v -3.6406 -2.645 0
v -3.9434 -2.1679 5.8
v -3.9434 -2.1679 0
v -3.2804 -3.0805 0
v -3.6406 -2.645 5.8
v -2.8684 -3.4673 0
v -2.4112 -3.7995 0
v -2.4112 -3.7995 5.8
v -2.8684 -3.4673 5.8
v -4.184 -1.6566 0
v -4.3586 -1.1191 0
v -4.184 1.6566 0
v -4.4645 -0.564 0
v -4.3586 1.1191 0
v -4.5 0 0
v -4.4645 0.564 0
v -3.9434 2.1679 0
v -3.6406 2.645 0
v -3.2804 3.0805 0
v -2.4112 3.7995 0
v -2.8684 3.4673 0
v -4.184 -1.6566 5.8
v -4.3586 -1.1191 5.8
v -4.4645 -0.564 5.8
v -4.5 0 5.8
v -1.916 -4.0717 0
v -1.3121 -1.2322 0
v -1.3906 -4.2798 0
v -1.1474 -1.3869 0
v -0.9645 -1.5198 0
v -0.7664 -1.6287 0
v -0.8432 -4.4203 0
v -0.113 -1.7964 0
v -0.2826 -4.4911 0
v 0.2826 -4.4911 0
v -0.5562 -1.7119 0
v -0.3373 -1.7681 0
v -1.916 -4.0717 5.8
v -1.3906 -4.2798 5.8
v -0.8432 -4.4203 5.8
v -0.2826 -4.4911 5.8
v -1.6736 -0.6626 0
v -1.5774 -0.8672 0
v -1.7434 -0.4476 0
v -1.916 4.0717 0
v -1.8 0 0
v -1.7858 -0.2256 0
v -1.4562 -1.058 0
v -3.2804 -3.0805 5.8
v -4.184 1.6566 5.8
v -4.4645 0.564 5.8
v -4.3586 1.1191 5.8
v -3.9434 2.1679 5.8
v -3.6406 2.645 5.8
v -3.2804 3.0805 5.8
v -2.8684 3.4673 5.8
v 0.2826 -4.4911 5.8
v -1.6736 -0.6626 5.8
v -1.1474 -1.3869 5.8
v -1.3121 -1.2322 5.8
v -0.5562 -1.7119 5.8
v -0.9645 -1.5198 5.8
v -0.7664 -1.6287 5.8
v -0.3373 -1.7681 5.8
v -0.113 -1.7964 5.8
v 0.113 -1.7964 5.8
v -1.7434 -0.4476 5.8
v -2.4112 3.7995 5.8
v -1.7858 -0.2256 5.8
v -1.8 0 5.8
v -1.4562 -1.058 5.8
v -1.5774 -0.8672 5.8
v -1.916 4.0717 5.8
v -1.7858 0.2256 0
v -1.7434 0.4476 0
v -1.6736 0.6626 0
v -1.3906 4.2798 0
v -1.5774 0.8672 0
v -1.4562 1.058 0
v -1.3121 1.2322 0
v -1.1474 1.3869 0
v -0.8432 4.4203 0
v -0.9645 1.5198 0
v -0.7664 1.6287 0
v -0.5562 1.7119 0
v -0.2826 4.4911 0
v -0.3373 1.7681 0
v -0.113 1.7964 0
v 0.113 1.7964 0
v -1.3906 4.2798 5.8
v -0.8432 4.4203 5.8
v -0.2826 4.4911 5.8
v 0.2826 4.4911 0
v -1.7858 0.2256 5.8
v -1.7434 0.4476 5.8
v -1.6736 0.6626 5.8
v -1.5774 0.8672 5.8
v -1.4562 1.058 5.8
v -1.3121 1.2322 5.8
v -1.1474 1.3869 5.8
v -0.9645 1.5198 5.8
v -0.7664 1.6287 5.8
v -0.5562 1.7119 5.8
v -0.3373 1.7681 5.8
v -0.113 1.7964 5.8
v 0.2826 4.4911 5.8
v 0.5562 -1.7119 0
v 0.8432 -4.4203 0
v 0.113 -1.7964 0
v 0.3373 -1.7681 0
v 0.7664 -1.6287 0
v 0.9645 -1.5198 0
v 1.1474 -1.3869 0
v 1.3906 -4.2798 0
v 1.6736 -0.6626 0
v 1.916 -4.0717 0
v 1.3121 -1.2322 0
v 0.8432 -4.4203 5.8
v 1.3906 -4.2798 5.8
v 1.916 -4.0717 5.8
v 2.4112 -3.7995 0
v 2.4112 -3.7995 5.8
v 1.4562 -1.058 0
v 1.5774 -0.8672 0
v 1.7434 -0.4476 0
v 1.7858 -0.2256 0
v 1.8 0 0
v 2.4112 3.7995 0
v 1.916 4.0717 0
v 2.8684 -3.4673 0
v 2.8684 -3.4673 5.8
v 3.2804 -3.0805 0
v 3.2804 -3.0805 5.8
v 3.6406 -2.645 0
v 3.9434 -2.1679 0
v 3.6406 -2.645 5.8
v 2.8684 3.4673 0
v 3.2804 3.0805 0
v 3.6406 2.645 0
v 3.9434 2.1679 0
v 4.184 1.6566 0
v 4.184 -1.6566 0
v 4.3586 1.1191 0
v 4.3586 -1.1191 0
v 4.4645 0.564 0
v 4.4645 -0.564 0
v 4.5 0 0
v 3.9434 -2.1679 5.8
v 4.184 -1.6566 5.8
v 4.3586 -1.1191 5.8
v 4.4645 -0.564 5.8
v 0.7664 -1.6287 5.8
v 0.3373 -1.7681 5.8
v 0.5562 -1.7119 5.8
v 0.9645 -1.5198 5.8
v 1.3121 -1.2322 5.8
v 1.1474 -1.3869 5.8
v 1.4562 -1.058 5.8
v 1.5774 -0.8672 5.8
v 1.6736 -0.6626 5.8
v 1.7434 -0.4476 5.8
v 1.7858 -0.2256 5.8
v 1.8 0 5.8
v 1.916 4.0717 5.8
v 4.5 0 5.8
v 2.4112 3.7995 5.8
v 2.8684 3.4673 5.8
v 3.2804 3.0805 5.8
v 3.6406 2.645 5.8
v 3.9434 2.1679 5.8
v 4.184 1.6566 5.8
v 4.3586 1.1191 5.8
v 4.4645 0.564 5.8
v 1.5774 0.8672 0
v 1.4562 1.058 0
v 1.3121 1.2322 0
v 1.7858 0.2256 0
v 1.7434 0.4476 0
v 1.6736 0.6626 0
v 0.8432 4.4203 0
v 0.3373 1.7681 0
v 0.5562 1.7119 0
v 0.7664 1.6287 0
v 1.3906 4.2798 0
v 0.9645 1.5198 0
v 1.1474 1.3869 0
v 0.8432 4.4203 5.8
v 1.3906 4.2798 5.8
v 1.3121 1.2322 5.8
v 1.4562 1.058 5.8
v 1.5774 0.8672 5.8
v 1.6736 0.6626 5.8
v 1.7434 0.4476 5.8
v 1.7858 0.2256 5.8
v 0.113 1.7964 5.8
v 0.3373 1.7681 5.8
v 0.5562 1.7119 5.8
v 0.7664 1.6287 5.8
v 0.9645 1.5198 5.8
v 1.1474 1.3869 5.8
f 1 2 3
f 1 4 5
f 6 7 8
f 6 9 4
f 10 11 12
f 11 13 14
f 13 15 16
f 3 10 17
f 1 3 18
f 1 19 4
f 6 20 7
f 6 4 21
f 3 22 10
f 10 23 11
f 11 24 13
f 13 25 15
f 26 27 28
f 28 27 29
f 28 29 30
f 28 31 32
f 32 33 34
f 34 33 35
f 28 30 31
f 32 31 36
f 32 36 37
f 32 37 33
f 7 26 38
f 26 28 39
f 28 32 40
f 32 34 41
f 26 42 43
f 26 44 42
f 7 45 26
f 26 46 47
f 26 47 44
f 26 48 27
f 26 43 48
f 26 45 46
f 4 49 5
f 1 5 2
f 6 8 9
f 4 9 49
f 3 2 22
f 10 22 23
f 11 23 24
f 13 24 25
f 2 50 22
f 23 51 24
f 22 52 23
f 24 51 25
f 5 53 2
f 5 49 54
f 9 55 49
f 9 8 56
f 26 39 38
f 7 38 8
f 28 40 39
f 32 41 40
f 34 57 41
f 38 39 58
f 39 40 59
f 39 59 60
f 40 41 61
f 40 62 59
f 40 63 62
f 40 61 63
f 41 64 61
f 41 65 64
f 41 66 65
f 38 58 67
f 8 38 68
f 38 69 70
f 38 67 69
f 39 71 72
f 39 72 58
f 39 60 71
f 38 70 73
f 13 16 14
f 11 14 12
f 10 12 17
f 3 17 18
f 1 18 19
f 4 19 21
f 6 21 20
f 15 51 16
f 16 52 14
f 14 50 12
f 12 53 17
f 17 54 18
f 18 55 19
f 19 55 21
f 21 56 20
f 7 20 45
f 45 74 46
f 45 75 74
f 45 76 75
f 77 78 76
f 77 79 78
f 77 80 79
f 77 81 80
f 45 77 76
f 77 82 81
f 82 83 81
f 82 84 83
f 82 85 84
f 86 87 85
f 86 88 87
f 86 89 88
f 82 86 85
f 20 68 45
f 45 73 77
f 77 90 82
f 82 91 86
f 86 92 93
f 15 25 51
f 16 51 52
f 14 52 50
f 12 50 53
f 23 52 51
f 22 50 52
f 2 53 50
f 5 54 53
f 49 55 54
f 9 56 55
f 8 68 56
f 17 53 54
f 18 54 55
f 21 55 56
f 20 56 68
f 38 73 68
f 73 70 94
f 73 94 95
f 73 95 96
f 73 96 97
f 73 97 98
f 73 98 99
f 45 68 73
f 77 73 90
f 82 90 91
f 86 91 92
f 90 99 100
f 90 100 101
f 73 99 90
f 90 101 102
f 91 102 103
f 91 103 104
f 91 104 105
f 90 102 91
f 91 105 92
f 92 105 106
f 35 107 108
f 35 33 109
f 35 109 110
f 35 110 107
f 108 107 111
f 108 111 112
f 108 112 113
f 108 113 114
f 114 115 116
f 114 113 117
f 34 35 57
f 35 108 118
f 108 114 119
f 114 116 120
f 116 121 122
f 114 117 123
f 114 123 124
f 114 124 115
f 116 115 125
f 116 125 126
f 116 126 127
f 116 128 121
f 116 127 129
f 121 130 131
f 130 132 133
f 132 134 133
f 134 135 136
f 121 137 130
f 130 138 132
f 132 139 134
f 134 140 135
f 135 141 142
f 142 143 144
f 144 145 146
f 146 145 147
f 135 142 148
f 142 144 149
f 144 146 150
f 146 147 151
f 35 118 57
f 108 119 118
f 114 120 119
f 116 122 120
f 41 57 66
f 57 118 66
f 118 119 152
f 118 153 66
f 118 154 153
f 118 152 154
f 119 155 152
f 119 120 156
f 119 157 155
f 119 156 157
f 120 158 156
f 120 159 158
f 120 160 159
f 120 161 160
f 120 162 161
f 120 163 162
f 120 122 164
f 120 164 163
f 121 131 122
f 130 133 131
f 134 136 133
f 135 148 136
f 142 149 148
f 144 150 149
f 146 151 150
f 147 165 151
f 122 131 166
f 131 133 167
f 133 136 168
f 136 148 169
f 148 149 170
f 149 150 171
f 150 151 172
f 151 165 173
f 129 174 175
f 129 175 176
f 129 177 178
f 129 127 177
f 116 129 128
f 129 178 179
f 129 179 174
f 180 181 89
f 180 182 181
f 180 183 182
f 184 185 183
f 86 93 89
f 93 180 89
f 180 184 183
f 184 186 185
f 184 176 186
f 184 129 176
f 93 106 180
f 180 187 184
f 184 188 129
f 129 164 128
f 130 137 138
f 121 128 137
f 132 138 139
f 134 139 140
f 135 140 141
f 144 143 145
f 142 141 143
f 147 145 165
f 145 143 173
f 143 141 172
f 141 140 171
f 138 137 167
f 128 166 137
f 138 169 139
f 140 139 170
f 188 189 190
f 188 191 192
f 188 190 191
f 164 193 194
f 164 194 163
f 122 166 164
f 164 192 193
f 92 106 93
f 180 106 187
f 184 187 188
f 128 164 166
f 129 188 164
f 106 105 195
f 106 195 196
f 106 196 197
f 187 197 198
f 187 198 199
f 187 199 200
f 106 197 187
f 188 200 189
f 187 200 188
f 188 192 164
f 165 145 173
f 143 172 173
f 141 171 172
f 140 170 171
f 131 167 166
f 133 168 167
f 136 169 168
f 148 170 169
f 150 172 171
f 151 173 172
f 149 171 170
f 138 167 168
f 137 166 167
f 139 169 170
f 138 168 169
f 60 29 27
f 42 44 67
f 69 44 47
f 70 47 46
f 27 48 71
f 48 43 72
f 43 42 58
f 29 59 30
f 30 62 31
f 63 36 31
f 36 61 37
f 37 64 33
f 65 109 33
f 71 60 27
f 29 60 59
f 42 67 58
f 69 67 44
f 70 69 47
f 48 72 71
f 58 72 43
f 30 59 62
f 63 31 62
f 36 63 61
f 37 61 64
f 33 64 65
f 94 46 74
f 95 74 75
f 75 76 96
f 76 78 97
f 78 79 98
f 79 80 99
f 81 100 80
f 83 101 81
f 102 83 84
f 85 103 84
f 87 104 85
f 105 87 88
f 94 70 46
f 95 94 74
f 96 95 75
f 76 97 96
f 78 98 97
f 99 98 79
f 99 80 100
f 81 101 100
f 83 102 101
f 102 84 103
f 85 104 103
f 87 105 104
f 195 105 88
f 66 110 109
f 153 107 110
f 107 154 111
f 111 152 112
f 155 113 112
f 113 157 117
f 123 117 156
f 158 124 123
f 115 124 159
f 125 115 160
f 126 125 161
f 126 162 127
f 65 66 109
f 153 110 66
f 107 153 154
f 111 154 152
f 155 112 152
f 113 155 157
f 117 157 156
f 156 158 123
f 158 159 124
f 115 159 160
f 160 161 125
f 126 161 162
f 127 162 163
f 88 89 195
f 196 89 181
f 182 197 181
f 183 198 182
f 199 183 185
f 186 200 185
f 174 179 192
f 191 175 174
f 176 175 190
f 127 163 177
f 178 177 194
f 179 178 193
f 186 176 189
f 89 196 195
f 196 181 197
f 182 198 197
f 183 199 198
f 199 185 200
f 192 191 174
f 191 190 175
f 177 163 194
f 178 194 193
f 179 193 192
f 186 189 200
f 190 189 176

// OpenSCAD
$fn = 50;

difference() {
	union() {
		translate(v = [-22.5, -7.5, -3]) {
			rotate(a = [0, 0, 0]) {
				difference() {
					union() {
						translate(v = [22.5, 7.5, 3.0]) {
							cylinder(h = 5.8, r = 4.5);
						}
					}
					union() {
						translate(v = [22.5, 7.5, 2.9]) {
							cylinder(h = 6, r = 1.8);
						}
					}
				}
			}
		}
	}
	union();
}
